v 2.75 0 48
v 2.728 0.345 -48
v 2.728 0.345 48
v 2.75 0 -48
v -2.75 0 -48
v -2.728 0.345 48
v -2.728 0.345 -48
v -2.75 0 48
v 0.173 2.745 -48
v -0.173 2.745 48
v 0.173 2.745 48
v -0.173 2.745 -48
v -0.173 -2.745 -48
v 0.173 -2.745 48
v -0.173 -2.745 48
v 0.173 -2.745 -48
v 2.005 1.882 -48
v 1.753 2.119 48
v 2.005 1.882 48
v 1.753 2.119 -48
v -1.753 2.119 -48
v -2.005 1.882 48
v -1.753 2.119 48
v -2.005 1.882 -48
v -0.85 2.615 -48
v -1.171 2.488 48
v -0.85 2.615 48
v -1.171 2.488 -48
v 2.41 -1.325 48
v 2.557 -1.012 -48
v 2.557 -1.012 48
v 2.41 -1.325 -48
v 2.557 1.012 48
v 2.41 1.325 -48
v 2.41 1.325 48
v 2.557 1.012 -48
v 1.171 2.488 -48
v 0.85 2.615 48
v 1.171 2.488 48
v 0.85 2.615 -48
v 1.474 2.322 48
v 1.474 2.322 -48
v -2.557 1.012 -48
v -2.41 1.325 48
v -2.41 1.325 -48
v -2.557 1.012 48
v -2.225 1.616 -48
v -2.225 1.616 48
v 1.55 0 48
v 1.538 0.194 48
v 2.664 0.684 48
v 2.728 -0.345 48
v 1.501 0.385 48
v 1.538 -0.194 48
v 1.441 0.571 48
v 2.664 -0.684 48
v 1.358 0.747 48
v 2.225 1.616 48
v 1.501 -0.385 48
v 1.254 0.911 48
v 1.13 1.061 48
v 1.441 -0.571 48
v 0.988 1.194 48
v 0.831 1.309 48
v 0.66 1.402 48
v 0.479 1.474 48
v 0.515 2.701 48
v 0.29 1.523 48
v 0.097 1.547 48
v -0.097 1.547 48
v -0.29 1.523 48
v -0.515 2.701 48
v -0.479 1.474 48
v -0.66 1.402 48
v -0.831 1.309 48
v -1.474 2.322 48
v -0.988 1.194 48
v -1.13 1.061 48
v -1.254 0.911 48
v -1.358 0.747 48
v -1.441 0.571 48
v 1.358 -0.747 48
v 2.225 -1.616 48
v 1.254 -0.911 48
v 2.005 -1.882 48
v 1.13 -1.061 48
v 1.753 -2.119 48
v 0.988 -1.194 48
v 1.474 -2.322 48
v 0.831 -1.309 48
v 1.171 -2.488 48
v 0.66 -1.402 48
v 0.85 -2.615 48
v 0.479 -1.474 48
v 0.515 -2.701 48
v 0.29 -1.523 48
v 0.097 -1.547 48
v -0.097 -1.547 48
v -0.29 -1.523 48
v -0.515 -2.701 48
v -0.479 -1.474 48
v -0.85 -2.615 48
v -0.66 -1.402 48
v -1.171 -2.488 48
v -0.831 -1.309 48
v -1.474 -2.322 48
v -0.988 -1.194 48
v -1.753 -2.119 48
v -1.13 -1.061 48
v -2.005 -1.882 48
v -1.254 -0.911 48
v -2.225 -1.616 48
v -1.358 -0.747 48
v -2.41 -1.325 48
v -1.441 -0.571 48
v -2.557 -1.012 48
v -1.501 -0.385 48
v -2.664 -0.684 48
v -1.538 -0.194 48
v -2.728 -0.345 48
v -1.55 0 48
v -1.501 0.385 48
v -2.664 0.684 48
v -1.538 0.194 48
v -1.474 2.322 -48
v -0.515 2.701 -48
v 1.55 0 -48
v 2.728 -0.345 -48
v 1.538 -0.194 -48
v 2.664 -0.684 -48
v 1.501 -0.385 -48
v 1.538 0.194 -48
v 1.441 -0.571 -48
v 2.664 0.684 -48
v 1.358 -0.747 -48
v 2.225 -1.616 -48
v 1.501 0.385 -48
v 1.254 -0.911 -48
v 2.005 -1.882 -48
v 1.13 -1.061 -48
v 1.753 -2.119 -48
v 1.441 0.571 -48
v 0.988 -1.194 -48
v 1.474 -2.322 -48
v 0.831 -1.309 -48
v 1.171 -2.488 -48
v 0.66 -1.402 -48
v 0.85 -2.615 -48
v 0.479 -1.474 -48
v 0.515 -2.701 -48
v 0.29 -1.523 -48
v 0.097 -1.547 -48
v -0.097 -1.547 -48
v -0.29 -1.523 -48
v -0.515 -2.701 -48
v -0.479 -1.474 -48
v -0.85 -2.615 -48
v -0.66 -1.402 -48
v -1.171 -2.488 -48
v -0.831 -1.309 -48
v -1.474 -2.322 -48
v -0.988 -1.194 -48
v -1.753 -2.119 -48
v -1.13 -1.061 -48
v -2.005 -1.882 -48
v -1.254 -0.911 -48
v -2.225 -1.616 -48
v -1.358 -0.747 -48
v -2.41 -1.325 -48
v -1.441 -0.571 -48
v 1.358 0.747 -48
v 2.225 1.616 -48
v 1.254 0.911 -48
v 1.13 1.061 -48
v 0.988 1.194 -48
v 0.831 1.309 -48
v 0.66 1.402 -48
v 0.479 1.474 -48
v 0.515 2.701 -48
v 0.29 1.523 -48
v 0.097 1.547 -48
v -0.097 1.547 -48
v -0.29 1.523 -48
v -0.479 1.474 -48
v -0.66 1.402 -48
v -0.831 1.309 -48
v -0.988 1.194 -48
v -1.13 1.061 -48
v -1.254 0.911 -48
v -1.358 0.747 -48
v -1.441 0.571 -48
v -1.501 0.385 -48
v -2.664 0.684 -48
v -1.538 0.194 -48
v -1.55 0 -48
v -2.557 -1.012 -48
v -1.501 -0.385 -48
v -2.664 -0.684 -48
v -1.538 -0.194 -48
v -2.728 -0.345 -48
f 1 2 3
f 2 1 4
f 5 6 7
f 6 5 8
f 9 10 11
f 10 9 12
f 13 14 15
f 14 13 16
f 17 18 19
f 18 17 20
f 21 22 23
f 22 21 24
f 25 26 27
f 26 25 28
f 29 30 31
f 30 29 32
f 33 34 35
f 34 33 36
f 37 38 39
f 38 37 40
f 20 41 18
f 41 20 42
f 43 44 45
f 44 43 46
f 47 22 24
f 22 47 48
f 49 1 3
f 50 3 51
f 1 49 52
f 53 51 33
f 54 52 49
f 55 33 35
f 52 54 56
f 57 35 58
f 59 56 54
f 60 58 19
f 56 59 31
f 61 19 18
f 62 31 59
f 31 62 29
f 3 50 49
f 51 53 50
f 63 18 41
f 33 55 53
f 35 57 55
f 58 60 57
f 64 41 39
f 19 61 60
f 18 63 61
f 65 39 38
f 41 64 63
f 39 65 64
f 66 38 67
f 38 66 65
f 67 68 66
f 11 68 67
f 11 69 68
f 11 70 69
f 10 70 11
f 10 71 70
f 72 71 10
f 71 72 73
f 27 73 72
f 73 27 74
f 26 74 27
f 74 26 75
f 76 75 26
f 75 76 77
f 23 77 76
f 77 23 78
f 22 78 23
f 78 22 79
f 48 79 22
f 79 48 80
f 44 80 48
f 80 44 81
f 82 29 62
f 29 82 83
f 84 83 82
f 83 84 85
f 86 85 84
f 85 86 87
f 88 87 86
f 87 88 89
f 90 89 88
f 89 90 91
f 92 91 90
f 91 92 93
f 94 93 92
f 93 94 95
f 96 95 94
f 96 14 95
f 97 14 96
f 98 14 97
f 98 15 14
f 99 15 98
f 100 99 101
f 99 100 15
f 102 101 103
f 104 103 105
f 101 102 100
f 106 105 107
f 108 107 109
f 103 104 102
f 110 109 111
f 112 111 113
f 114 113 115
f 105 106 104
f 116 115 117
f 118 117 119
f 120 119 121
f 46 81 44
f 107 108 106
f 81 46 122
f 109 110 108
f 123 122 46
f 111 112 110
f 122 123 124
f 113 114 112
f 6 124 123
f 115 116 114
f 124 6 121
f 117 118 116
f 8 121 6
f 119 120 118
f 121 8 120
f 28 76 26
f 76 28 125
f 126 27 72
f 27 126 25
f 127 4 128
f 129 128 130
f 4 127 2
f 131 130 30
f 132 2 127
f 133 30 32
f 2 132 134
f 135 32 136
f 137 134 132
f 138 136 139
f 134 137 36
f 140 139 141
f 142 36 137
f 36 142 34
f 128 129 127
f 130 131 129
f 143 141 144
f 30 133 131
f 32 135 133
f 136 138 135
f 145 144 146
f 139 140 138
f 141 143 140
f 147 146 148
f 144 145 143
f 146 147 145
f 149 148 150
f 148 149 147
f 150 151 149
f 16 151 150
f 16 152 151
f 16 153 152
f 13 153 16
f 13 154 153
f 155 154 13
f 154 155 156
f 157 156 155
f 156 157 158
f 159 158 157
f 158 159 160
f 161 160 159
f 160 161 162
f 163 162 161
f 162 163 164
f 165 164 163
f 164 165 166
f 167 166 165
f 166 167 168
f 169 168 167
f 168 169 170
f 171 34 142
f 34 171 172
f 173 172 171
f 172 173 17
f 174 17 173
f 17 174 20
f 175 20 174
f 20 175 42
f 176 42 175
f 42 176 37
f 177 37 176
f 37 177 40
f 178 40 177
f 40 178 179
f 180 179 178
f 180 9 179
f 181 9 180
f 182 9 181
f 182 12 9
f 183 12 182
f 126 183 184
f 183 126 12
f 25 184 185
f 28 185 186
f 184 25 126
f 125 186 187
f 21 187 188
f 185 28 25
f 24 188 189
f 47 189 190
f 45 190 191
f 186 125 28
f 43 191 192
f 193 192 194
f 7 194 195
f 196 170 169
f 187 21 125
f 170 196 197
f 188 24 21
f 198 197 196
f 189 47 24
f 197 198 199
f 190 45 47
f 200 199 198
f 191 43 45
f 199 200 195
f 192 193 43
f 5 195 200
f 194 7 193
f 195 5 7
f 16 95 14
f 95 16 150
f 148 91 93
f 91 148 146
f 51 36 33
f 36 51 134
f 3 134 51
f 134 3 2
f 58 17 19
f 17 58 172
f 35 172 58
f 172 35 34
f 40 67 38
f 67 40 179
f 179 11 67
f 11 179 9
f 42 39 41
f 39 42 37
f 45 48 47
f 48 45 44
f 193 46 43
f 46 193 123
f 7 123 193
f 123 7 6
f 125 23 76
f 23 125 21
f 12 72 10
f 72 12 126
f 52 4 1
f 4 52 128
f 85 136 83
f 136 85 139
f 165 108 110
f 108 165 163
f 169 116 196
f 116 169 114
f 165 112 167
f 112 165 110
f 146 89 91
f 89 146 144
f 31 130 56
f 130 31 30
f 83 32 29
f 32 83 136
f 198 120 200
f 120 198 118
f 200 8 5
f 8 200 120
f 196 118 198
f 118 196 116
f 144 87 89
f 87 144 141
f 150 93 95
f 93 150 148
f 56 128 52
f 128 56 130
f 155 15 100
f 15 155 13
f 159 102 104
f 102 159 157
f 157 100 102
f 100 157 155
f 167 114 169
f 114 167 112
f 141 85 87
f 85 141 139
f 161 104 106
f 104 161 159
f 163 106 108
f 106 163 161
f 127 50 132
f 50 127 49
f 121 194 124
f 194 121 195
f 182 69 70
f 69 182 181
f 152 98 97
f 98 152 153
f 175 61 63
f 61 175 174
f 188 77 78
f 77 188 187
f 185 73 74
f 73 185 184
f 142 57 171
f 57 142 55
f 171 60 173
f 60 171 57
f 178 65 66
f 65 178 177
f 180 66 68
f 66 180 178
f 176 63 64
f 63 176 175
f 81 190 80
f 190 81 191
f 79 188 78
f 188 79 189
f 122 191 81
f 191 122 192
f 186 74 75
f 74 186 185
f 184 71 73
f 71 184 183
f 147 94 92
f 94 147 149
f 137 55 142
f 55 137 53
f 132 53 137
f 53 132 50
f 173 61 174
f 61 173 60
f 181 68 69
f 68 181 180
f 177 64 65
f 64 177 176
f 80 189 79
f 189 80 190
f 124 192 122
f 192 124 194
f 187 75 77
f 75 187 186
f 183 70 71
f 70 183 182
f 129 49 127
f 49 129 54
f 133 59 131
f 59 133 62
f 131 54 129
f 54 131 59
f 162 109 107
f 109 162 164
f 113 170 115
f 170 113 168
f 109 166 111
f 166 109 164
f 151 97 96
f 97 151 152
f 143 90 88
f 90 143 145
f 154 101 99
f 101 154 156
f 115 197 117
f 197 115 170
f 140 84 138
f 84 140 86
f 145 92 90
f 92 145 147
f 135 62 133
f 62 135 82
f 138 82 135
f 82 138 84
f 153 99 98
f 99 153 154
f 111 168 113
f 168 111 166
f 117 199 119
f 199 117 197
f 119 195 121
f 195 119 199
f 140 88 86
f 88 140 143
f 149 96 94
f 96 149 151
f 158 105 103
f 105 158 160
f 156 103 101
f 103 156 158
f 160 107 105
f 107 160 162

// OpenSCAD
$fn = 50;


difference() {
	union() {
		translate(v = [0, 0, -48.0000000000]) {
			cylinder(h = 96, r = 2.7500000000);
		}
	}
	union() {
		translate(v = [0, 0, -100.0000000000]) {
			cylinder(h = 200, r = 1.5500000000);
		}
	}
}
